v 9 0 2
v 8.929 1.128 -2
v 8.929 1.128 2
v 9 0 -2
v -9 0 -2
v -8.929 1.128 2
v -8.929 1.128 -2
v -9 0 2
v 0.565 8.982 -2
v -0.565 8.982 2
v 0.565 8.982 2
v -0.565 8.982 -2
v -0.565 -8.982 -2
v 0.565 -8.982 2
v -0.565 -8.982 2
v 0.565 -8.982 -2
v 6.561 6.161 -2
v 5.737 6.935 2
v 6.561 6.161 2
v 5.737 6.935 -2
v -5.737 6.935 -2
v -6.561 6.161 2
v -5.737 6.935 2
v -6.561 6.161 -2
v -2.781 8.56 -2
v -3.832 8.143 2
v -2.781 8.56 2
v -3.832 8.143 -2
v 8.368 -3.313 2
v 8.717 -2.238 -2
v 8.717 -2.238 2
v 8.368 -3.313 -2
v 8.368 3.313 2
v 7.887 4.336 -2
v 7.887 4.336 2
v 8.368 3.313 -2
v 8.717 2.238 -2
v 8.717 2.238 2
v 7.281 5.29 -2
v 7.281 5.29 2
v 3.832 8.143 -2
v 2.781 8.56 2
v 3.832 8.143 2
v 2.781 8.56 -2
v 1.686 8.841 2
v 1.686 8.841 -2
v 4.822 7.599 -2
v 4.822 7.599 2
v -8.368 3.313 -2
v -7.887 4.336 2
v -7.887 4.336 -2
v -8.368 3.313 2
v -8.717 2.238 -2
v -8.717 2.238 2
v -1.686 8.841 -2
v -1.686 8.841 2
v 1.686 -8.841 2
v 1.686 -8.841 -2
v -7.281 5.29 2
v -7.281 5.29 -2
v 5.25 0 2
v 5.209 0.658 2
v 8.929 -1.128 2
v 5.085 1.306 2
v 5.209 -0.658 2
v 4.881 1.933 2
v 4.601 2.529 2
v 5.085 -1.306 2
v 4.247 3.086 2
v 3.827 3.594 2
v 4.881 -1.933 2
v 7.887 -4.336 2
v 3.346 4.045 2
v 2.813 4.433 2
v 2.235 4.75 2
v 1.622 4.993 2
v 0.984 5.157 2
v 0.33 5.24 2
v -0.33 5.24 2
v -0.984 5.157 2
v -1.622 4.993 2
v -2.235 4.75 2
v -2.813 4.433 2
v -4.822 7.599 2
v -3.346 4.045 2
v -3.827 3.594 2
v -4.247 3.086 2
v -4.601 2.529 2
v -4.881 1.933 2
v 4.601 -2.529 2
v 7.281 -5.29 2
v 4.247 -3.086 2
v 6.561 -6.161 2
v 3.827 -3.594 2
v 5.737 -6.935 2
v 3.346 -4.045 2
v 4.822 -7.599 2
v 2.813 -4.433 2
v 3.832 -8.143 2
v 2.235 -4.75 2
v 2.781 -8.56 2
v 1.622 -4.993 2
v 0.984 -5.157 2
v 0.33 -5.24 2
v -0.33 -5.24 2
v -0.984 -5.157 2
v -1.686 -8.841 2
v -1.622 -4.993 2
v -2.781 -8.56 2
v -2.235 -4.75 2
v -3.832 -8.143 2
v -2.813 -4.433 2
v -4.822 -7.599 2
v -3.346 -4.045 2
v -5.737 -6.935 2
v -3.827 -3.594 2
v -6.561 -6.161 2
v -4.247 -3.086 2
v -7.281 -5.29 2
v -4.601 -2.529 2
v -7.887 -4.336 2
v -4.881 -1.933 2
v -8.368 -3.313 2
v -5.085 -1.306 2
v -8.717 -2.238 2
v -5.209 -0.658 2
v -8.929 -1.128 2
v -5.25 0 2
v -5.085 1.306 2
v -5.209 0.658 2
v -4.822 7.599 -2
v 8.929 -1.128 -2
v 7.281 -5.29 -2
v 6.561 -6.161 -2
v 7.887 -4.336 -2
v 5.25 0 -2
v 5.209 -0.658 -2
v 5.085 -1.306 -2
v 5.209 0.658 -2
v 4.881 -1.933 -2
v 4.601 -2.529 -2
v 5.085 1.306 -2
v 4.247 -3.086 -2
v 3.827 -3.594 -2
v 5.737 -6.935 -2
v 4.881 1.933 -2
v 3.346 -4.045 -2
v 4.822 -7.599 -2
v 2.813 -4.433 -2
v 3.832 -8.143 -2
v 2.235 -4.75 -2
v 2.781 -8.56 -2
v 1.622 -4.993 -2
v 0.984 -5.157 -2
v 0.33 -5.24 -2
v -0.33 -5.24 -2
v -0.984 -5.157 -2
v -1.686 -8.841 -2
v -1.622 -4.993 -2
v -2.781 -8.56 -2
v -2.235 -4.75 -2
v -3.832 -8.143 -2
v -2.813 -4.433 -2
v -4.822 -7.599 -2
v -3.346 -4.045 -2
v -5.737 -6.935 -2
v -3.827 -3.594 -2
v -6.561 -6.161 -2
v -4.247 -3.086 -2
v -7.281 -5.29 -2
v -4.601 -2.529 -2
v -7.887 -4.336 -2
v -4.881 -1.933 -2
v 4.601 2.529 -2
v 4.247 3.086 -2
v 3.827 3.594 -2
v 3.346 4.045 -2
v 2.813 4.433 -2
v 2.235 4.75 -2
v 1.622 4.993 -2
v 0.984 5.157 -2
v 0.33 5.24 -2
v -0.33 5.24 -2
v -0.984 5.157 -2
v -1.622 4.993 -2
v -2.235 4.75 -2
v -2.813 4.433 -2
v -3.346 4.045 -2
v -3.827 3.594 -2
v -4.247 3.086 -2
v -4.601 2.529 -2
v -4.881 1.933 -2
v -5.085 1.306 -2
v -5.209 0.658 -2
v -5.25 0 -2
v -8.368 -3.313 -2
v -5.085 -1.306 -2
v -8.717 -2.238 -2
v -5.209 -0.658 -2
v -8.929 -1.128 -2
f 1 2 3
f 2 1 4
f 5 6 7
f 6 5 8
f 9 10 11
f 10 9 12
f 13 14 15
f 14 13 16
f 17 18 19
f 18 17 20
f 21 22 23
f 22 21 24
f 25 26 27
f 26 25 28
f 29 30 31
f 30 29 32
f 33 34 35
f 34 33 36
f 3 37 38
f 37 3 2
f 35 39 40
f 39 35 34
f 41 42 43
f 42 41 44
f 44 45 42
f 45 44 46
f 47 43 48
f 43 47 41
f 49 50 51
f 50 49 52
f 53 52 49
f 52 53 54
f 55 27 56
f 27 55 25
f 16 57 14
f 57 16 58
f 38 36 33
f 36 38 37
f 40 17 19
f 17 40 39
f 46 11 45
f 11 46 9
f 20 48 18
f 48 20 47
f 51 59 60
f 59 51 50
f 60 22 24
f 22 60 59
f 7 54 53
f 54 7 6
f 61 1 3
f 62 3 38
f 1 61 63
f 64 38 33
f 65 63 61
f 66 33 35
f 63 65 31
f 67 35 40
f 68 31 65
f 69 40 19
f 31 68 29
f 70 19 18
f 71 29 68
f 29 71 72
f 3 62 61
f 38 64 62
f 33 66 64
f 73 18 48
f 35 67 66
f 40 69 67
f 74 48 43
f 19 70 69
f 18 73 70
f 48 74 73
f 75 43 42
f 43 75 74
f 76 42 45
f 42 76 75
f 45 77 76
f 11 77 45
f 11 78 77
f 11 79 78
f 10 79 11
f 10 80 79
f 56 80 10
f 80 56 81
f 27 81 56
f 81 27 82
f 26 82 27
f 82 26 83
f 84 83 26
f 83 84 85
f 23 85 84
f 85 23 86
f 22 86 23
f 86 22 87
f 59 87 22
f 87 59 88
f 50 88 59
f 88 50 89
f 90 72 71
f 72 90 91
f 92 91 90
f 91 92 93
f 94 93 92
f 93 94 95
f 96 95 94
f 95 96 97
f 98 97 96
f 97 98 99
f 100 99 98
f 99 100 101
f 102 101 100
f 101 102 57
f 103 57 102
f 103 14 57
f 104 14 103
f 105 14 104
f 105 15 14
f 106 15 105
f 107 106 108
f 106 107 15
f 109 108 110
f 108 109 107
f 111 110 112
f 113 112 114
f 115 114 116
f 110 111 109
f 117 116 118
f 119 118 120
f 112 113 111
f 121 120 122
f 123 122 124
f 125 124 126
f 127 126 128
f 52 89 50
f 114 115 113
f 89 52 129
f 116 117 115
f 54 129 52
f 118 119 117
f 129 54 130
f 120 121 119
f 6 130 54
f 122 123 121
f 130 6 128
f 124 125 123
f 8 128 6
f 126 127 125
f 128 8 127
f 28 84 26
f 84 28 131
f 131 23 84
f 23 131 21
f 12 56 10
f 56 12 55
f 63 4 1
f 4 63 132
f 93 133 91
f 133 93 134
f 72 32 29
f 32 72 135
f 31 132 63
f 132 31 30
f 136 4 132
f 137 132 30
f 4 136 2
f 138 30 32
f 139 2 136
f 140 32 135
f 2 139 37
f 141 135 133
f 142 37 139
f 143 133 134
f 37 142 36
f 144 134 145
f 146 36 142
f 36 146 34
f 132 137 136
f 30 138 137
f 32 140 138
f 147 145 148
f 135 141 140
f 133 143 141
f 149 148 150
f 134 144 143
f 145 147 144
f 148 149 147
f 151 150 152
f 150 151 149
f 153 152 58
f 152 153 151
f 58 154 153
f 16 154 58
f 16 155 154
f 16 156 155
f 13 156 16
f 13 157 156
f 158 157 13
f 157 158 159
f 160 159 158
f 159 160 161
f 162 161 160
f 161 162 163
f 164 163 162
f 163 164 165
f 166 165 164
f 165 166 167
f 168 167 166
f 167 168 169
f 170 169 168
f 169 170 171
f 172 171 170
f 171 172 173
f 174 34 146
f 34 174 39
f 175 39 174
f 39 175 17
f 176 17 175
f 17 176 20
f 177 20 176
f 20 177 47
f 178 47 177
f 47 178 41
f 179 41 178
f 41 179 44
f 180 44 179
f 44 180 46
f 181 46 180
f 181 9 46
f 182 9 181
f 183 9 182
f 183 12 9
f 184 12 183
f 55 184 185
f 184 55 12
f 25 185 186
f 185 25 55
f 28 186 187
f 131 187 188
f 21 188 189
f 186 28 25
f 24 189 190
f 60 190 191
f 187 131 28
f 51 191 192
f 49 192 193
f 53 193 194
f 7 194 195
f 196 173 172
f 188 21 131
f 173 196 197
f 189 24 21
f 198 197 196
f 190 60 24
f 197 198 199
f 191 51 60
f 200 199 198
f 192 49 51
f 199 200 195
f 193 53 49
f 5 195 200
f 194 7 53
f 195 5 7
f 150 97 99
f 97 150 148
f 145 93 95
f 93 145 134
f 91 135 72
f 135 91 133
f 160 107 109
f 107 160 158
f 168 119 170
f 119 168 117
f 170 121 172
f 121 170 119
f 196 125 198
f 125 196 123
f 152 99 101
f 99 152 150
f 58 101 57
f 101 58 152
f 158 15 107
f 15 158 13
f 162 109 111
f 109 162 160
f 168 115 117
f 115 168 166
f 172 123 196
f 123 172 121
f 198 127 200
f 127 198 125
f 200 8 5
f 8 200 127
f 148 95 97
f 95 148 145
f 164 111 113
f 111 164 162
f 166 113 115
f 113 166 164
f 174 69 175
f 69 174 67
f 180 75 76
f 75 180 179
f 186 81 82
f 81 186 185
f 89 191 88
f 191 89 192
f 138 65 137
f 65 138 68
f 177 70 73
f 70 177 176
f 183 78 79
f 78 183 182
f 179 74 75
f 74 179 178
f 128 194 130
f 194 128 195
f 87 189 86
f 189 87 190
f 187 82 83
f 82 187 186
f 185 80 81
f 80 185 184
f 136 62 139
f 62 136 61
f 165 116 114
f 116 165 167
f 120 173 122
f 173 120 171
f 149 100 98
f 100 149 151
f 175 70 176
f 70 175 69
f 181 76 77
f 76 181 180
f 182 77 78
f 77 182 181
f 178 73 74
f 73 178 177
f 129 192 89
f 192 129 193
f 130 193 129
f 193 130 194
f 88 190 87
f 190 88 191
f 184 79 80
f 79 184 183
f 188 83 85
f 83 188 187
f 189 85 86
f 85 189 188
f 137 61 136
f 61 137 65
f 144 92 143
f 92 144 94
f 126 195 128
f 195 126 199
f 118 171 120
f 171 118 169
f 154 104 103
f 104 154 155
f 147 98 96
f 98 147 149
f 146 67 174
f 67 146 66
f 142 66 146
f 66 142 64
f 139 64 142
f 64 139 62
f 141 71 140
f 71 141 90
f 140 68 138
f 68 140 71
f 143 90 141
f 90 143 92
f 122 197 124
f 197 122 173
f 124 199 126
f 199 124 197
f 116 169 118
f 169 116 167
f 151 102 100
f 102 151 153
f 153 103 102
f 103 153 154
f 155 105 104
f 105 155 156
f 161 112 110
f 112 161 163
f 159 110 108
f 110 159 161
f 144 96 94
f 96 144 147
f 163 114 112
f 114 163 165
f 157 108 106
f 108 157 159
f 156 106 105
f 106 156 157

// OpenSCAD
$fn = 50;


difference() {
	union() {
		translate(v = [0, 0, -2.0000000000]) {
			cylinder(h = 4, r = 9.0000000000);
		}
	}
	union() {
		translate(v = [0, 0, -100.0000000000]) {
			cylinder(h = 200, r = 5.2500000000);
		}
	}
}
